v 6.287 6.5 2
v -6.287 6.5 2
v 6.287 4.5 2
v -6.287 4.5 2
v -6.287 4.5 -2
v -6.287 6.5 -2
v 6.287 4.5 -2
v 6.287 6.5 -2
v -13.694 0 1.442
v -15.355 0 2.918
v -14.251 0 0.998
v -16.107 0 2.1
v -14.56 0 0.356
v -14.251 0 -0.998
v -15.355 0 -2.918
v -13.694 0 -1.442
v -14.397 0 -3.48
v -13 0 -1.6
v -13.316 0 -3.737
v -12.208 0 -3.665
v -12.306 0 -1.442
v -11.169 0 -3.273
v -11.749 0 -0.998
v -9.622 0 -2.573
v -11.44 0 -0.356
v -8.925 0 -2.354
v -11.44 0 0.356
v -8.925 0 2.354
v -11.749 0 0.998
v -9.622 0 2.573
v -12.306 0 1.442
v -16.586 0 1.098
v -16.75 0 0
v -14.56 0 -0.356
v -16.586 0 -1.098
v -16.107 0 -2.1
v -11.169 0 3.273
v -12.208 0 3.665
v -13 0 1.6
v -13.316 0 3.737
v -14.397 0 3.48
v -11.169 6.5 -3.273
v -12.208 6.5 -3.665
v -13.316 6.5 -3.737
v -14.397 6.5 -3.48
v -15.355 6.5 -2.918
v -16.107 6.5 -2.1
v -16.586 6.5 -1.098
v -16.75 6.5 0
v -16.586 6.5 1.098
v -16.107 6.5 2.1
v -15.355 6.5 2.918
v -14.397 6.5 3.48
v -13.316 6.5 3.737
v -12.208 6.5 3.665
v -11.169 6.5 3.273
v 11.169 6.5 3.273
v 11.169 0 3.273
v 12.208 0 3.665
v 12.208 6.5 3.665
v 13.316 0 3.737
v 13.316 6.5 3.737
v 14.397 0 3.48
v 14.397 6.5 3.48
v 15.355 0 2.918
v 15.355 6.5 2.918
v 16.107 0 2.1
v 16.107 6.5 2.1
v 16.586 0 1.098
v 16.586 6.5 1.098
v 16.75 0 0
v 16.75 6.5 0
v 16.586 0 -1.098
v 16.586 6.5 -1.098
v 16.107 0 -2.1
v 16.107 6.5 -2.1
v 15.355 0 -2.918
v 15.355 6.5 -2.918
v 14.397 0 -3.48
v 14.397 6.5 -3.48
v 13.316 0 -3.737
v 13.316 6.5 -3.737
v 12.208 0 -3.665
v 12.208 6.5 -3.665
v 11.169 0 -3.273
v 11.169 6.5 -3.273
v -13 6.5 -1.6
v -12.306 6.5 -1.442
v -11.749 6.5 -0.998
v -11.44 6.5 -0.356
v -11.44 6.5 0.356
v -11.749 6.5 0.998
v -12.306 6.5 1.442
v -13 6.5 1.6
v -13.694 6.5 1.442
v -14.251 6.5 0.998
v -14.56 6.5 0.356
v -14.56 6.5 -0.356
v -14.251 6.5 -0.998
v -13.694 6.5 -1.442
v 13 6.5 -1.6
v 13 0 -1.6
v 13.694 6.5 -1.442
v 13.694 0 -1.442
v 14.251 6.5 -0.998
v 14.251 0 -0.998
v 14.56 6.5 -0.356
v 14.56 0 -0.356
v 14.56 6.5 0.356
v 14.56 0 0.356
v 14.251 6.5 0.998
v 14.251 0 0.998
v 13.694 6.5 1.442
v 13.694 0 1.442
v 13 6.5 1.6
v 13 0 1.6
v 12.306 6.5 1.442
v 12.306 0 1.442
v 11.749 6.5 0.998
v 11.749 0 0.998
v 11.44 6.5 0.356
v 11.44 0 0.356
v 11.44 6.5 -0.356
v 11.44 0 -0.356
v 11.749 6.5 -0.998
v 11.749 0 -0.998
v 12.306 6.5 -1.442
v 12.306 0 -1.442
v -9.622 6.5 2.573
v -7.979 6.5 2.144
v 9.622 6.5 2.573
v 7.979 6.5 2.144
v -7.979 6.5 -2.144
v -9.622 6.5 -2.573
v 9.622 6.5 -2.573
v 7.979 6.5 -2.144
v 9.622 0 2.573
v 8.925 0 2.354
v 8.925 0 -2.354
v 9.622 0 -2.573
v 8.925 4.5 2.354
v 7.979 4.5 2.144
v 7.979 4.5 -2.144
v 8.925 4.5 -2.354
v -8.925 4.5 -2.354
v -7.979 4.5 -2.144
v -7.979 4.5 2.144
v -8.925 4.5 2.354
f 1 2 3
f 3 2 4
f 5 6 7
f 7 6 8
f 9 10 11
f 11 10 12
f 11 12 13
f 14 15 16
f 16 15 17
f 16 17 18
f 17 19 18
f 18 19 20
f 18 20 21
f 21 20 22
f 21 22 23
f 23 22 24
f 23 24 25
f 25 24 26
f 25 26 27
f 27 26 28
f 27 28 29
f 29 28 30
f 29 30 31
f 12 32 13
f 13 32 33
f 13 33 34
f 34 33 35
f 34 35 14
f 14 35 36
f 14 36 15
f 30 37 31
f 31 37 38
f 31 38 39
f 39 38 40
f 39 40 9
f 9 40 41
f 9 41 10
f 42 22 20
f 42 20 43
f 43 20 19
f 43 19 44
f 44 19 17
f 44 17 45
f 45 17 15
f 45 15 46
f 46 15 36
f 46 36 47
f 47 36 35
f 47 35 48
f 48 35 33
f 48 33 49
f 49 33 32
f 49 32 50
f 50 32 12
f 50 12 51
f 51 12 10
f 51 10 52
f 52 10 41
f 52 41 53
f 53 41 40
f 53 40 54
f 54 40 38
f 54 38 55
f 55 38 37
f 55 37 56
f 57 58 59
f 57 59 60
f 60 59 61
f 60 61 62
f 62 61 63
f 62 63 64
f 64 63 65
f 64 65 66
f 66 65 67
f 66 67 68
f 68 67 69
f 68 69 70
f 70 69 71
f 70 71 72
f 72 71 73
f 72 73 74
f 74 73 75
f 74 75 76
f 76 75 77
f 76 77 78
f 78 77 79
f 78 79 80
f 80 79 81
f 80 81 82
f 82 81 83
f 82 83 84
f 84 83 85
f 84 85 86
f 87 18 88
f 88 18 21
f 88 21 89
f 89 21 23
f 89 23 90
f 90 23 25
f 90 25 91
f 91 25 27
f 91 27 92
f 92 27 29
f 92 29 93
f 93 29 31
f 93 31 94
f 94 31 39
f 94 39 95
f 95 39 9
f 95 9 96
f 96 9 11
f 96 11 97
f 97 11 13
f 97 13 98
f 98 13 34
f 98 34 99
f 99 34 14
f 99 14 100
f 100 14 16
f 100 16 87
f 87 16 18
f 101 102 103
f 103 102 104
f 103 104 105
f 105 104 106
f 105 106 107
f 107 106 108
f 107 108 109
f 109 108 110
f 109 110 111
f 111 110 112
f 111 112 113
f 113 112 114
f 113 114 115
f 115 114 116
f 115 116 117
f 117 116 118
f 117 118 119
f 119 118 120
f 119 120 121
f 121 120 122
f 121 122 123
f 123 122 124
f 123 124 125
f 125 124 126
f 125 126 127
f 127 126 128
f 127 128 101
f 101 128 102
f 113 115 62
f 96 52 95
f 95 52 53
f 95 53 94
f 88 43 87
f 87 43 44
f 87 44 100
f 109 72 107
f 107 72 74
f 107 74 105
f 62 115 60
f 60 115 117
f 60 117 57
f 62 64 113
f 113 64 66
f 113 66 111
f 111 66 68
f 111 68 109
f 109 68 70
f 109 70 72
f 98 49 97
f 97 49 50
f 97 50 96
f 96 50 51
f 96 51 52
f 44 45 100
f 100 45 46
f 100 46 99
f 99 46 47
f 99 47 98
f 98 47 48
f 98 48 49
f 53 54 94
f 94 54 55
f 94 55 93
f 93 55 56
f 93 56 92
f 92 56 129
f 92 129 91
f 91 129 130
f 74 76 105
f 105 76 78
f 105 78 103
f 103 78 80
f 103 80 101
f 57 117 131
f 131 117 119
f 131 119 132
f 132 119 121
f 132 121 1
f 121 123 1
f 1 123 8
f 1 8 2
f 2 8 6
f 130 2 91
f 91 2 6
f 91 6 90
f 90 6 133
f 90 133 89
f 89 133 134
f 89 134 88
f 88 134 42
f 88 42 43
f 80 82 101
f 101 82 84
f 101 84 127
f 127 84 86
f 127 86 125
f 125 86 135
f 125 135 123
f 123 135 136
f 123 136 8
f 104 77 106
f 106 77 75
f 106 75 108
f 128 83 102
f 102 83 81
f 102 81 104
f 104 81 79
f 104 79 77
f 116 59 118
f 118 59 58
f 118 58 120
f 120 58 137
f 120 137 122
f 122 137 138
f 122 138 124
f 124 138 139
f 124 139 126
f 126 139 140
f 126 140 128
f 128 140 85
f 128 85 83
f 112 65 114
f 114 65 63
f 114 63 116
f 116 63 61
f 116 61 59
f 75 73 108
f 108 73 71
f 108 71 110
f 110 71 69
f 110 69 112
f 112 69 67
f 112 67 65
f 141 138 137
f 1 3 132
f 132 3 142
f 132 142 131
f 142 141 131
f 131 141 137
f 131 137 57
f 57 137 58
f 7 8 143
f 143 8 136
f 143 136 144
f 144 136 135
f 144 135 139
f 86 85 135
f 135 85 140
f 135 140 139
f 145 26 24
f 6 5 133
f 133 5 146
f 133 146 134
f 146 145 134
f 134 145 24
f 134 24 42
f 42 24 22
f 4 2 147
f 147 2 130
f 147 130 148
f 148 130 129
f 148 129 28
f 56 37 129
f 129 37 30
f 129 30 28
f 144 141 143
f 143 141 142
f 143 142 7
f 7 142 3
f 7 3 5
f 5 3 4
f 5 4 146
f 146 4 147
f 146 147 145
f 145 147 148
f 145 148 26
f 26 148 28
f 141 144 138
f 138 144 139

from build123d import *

# Parameters (mm, degrees)
SKETCH1_R           = 1.6
BOSS_EXTRUDE1_DEPTH = 6.5
FILLET1_R           = 10
SKETCH2_W           = 17.85
SKETCH2_H           = 4.708375864
CUT_EXTRUDE1_DEPTH  = 4.5


with BuildPart() as part:
    # Sketch1 → Boss-Extrude1 (new body)
    with BuildSketch(Plane(origin=(0, 0, 0), x_dir=(1, 0, 0), z_dir=(0, 1, 0))):
        with BuildLine():
            Line((9.827855615, 2), (-9.827855615, 2))
            ThreePointArc((-9.827855615, 2), (-16.75, 0), (-9.827855615, -2))
            Line((-9.827855615, -2), (9.827855615, -2))
            ThreePointArc((9.827855615, -2), (16.75, 0), (9.827855615, 2))
        make_face()
        with Locations(Location((-13, 0, 0), (0, 0, 90))):
            Circle(SKETCH1_R, mode=Mode.SUBTRACT)
        with Locations(Location((13, 0, 0), (0, 0, 90))):
            Circle(SKETCH1_R, mode=Mode.SUBTRACT)
    extrude(amount=BOSS_EXTRUDE1_DEPTH)

    # Fillet1
    fillet1_edges = [part.edges().sort_by_distance(p)[0] for p in [
        (-9.827855615, 3.25, -2),
        (9.827855615, 3.25, -2),
        (9.827855615, 3.25, 2),
        (-9.827855615, 3.25, 2),
    ]]
    fillet(fillet1_edges, radius=FILLET1_R)

    # Sketch2 → Cut-Extrude1 (cut)
    with BuildSketch(Plane(origin=(0, 0, 0), x_dir=(-1, 0, 0), z_dir=(0, -1, 0))):
        Rectangle(SKETCH2_W, SKETCH2_H)
    extrude(amount=-CUT_EXTRUDE1_DEPTH, mode=Mode.SUBTRACT)


solid = part.part
